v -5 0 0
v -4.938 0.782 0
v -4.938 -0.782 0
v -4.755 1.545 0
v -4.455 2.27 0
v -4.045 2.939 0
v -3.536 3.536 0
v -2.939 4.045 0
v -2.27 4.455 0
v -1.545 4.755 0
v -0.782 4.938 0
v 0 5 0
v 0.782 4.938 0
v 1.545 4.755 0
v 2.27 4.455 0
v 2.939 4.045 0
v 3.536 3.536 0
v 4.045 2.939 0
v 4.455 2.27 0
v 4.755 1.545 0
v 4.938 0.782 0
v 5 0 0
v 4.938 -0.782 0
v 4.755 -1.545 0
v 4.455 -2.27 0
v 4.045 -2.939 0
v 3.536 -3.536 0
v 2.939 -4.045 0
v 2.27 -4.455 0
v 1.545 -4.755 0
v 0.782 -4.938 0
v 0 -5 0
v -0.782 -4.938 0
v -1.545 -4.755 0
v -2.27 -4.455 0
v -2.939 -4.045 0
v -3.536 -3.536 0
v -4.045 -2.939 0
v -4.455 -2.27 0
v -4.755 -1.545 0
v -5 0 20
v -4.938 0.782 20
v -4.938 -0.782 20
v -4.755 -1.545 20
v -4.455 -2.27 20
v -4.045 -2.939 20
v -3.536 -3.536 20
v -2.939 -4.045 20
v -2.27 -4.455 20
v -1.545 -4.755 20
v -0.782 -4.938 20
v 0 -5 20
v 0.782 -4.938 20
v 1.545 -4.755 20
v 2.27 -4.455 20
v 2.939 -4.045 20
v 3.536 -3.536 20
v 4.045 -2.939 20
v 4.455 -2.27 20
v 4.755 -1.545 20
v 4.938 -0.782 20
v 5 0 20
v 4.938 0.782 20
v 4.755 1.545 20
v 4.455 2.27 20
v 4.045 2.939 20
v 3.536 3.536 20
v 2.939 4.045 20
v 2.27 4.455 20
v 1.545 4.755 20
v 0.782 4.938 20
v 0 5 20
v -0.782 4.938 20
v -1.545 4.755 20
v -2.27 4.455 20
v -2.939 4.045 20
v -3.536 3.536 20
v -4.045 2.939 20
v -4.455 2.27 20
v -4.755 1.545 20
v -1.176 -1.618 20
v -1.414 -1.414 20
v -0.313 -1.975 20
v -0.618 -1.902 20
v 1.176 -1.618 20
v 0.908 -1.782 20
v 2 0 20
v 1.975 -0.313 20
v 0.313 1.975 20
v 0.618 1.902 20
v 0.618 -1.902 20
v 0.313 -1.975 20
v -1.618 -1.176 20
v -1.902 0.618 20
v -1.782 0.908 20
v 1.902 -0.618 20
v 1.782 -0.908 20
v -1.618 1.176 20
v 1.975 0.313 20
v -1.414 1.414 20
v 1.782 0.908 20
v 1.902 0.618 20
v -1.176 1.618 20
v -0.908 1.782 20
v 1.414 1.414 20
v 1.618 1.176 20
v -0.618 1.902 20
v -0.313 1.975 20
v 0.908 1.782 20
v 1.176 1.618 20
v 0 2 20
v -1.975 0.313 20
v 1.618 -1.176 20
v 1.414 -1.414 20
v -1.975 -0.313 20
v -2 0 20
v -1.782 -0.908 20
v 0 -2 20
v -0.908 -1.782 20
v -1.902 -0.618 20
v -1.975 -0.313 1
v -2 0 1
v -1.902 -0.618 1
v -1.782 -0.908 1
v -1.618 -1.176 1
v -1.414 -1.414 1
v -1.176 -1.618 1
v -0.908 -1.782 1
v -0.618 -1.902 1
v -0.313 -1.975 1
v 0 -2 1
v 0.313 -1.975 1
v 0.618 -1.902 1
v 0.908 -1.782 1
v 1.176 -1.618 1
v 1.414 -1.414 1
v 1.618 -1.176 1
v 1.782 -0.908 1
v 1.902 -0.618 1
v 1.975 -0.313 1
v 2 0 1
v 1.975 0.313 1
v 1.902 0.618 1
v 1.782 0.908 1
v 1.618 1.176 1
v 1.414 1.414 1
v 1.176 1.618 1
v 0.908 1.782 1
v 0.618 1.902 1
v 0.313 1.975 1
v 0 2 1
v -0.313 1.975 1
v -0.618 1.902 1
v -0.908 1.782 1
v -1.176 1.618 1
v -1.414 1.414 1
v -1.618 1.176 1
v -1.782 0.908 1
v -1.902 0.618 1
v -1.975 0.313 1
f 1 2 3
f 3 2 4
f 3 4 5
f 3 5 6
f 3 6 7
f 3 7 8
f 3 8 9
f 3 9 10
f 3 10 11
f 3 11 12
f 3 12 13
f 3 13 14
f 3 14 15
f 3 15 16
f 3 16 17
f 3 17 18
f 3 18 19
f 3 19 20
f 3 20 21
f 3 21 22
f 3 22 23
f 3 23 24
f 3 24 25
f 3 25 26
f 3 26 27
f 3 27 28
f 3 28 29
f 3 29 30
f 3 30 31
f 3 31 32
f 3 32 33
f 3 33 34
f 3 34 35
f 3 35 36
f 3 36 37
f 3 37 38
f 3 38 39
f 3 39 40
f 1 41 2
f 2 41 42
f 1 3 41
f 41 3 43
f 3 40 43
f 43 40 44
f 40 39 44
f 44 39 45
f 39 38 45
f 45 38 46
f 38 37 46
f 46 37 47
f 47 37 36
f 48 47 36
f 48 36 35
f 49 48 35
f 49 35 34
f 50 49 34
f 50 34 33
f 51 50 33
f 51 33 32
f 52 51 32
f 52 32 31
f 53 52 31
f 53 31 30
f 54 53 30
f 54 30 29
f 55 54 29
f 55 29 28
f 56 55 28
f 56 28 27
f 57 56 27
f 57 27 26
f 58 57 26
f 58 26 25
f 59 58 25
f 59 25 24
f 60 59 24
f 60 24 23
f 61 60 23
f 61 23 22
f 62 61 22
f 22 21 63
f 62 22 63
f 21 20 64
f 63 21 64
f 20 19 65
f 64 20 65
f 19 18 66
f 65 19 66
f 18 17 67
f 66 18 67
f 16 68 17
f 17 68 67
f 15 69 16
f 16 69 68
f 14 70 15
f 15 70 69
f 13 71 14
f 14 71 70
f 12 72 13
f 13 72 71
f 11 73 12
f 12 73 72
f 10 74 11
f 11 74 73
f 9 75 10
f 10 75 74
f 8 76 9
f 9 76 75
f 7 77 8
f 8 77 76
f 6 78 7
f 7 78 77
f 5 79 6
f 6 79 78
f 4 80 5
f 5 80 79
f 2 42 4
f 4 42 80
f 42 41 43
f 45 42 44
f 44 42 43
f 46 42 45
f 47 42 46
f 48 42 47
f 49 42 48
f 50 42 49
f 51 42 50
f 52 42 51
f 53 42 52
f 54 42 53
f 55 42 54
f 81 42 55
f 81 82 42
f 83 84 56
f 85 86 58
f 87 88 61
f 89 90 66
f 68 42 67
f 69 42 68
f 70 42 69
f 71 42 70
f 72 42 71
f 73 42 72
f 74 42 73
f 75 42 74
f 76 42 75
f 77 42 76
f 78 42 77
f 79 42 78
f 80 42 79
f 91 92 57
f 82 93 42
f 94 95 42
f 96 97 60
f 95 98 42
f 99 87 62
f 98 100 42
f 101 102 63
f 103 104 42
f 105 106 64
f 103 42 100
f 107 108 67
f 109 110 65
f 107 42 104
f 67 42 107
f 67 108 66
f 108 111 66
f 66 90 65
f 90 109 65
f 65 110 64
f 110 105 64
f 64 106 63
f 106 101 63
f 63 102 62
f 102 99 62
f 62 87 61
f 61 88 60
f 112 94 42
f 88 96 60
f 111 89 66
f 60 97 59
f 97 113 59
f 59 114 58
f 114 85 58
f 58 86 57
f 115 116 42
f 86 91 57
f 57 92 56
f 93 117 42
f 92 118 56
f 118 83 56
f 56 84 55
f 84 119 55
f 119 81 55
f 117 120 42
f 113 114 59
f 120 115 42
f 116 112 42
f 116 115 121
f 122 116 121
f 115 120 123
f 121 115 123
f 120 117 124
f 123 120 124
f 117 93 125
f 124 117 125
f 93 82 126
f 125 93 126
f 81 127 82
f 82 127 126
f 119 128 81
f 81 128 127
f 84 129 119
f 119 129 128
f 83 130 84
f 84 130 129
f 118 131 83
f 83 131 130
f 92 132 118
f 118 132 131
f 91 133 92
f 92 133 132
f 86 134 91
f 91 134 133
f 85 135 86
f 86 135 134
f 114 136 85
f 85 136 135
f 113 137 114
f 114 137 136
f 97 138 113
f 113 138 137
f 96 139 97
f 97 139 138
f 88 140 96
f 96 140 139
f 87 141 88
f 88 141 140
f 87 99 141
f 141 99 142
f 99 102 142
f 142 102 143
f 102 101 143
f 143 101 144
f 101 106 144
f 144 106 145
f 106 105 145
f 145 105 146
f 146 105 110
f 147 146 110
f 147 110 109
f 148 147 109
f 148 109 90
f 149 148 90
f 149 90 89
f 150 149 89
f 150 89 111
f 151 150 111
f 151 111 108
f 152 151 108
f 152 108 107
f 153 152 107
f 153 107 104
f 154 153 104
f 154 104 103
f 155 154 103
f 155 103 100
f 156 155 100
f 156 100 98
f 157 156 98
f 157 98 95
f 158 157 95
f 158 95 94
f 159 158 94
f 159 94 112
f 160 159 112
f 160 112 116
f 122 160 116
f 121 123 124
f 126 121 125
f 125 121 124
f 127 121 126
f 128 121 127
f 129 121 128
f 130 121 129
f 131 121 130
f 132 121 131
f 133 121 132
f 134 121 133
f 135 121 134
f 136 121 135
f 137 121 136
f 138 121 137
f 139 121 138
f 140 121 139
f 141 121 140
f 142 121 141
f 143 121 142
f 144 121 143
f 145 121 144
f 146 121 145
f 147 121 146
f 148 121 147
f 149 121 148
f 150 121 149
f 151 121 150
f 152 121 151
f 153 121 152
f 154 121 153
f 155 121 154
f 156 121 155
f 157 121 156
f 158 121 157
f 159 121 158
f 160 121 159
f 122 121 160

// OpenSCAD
$fn=40; // resolution of the arcs

scale([10,10,10]) { // cm to mm scaling

	difference() {
		cylinder(h = 2, r=0.5);
		translate([0,0,0.1])
		cylinder(h = 2.2, r=0.2);
	}

}
